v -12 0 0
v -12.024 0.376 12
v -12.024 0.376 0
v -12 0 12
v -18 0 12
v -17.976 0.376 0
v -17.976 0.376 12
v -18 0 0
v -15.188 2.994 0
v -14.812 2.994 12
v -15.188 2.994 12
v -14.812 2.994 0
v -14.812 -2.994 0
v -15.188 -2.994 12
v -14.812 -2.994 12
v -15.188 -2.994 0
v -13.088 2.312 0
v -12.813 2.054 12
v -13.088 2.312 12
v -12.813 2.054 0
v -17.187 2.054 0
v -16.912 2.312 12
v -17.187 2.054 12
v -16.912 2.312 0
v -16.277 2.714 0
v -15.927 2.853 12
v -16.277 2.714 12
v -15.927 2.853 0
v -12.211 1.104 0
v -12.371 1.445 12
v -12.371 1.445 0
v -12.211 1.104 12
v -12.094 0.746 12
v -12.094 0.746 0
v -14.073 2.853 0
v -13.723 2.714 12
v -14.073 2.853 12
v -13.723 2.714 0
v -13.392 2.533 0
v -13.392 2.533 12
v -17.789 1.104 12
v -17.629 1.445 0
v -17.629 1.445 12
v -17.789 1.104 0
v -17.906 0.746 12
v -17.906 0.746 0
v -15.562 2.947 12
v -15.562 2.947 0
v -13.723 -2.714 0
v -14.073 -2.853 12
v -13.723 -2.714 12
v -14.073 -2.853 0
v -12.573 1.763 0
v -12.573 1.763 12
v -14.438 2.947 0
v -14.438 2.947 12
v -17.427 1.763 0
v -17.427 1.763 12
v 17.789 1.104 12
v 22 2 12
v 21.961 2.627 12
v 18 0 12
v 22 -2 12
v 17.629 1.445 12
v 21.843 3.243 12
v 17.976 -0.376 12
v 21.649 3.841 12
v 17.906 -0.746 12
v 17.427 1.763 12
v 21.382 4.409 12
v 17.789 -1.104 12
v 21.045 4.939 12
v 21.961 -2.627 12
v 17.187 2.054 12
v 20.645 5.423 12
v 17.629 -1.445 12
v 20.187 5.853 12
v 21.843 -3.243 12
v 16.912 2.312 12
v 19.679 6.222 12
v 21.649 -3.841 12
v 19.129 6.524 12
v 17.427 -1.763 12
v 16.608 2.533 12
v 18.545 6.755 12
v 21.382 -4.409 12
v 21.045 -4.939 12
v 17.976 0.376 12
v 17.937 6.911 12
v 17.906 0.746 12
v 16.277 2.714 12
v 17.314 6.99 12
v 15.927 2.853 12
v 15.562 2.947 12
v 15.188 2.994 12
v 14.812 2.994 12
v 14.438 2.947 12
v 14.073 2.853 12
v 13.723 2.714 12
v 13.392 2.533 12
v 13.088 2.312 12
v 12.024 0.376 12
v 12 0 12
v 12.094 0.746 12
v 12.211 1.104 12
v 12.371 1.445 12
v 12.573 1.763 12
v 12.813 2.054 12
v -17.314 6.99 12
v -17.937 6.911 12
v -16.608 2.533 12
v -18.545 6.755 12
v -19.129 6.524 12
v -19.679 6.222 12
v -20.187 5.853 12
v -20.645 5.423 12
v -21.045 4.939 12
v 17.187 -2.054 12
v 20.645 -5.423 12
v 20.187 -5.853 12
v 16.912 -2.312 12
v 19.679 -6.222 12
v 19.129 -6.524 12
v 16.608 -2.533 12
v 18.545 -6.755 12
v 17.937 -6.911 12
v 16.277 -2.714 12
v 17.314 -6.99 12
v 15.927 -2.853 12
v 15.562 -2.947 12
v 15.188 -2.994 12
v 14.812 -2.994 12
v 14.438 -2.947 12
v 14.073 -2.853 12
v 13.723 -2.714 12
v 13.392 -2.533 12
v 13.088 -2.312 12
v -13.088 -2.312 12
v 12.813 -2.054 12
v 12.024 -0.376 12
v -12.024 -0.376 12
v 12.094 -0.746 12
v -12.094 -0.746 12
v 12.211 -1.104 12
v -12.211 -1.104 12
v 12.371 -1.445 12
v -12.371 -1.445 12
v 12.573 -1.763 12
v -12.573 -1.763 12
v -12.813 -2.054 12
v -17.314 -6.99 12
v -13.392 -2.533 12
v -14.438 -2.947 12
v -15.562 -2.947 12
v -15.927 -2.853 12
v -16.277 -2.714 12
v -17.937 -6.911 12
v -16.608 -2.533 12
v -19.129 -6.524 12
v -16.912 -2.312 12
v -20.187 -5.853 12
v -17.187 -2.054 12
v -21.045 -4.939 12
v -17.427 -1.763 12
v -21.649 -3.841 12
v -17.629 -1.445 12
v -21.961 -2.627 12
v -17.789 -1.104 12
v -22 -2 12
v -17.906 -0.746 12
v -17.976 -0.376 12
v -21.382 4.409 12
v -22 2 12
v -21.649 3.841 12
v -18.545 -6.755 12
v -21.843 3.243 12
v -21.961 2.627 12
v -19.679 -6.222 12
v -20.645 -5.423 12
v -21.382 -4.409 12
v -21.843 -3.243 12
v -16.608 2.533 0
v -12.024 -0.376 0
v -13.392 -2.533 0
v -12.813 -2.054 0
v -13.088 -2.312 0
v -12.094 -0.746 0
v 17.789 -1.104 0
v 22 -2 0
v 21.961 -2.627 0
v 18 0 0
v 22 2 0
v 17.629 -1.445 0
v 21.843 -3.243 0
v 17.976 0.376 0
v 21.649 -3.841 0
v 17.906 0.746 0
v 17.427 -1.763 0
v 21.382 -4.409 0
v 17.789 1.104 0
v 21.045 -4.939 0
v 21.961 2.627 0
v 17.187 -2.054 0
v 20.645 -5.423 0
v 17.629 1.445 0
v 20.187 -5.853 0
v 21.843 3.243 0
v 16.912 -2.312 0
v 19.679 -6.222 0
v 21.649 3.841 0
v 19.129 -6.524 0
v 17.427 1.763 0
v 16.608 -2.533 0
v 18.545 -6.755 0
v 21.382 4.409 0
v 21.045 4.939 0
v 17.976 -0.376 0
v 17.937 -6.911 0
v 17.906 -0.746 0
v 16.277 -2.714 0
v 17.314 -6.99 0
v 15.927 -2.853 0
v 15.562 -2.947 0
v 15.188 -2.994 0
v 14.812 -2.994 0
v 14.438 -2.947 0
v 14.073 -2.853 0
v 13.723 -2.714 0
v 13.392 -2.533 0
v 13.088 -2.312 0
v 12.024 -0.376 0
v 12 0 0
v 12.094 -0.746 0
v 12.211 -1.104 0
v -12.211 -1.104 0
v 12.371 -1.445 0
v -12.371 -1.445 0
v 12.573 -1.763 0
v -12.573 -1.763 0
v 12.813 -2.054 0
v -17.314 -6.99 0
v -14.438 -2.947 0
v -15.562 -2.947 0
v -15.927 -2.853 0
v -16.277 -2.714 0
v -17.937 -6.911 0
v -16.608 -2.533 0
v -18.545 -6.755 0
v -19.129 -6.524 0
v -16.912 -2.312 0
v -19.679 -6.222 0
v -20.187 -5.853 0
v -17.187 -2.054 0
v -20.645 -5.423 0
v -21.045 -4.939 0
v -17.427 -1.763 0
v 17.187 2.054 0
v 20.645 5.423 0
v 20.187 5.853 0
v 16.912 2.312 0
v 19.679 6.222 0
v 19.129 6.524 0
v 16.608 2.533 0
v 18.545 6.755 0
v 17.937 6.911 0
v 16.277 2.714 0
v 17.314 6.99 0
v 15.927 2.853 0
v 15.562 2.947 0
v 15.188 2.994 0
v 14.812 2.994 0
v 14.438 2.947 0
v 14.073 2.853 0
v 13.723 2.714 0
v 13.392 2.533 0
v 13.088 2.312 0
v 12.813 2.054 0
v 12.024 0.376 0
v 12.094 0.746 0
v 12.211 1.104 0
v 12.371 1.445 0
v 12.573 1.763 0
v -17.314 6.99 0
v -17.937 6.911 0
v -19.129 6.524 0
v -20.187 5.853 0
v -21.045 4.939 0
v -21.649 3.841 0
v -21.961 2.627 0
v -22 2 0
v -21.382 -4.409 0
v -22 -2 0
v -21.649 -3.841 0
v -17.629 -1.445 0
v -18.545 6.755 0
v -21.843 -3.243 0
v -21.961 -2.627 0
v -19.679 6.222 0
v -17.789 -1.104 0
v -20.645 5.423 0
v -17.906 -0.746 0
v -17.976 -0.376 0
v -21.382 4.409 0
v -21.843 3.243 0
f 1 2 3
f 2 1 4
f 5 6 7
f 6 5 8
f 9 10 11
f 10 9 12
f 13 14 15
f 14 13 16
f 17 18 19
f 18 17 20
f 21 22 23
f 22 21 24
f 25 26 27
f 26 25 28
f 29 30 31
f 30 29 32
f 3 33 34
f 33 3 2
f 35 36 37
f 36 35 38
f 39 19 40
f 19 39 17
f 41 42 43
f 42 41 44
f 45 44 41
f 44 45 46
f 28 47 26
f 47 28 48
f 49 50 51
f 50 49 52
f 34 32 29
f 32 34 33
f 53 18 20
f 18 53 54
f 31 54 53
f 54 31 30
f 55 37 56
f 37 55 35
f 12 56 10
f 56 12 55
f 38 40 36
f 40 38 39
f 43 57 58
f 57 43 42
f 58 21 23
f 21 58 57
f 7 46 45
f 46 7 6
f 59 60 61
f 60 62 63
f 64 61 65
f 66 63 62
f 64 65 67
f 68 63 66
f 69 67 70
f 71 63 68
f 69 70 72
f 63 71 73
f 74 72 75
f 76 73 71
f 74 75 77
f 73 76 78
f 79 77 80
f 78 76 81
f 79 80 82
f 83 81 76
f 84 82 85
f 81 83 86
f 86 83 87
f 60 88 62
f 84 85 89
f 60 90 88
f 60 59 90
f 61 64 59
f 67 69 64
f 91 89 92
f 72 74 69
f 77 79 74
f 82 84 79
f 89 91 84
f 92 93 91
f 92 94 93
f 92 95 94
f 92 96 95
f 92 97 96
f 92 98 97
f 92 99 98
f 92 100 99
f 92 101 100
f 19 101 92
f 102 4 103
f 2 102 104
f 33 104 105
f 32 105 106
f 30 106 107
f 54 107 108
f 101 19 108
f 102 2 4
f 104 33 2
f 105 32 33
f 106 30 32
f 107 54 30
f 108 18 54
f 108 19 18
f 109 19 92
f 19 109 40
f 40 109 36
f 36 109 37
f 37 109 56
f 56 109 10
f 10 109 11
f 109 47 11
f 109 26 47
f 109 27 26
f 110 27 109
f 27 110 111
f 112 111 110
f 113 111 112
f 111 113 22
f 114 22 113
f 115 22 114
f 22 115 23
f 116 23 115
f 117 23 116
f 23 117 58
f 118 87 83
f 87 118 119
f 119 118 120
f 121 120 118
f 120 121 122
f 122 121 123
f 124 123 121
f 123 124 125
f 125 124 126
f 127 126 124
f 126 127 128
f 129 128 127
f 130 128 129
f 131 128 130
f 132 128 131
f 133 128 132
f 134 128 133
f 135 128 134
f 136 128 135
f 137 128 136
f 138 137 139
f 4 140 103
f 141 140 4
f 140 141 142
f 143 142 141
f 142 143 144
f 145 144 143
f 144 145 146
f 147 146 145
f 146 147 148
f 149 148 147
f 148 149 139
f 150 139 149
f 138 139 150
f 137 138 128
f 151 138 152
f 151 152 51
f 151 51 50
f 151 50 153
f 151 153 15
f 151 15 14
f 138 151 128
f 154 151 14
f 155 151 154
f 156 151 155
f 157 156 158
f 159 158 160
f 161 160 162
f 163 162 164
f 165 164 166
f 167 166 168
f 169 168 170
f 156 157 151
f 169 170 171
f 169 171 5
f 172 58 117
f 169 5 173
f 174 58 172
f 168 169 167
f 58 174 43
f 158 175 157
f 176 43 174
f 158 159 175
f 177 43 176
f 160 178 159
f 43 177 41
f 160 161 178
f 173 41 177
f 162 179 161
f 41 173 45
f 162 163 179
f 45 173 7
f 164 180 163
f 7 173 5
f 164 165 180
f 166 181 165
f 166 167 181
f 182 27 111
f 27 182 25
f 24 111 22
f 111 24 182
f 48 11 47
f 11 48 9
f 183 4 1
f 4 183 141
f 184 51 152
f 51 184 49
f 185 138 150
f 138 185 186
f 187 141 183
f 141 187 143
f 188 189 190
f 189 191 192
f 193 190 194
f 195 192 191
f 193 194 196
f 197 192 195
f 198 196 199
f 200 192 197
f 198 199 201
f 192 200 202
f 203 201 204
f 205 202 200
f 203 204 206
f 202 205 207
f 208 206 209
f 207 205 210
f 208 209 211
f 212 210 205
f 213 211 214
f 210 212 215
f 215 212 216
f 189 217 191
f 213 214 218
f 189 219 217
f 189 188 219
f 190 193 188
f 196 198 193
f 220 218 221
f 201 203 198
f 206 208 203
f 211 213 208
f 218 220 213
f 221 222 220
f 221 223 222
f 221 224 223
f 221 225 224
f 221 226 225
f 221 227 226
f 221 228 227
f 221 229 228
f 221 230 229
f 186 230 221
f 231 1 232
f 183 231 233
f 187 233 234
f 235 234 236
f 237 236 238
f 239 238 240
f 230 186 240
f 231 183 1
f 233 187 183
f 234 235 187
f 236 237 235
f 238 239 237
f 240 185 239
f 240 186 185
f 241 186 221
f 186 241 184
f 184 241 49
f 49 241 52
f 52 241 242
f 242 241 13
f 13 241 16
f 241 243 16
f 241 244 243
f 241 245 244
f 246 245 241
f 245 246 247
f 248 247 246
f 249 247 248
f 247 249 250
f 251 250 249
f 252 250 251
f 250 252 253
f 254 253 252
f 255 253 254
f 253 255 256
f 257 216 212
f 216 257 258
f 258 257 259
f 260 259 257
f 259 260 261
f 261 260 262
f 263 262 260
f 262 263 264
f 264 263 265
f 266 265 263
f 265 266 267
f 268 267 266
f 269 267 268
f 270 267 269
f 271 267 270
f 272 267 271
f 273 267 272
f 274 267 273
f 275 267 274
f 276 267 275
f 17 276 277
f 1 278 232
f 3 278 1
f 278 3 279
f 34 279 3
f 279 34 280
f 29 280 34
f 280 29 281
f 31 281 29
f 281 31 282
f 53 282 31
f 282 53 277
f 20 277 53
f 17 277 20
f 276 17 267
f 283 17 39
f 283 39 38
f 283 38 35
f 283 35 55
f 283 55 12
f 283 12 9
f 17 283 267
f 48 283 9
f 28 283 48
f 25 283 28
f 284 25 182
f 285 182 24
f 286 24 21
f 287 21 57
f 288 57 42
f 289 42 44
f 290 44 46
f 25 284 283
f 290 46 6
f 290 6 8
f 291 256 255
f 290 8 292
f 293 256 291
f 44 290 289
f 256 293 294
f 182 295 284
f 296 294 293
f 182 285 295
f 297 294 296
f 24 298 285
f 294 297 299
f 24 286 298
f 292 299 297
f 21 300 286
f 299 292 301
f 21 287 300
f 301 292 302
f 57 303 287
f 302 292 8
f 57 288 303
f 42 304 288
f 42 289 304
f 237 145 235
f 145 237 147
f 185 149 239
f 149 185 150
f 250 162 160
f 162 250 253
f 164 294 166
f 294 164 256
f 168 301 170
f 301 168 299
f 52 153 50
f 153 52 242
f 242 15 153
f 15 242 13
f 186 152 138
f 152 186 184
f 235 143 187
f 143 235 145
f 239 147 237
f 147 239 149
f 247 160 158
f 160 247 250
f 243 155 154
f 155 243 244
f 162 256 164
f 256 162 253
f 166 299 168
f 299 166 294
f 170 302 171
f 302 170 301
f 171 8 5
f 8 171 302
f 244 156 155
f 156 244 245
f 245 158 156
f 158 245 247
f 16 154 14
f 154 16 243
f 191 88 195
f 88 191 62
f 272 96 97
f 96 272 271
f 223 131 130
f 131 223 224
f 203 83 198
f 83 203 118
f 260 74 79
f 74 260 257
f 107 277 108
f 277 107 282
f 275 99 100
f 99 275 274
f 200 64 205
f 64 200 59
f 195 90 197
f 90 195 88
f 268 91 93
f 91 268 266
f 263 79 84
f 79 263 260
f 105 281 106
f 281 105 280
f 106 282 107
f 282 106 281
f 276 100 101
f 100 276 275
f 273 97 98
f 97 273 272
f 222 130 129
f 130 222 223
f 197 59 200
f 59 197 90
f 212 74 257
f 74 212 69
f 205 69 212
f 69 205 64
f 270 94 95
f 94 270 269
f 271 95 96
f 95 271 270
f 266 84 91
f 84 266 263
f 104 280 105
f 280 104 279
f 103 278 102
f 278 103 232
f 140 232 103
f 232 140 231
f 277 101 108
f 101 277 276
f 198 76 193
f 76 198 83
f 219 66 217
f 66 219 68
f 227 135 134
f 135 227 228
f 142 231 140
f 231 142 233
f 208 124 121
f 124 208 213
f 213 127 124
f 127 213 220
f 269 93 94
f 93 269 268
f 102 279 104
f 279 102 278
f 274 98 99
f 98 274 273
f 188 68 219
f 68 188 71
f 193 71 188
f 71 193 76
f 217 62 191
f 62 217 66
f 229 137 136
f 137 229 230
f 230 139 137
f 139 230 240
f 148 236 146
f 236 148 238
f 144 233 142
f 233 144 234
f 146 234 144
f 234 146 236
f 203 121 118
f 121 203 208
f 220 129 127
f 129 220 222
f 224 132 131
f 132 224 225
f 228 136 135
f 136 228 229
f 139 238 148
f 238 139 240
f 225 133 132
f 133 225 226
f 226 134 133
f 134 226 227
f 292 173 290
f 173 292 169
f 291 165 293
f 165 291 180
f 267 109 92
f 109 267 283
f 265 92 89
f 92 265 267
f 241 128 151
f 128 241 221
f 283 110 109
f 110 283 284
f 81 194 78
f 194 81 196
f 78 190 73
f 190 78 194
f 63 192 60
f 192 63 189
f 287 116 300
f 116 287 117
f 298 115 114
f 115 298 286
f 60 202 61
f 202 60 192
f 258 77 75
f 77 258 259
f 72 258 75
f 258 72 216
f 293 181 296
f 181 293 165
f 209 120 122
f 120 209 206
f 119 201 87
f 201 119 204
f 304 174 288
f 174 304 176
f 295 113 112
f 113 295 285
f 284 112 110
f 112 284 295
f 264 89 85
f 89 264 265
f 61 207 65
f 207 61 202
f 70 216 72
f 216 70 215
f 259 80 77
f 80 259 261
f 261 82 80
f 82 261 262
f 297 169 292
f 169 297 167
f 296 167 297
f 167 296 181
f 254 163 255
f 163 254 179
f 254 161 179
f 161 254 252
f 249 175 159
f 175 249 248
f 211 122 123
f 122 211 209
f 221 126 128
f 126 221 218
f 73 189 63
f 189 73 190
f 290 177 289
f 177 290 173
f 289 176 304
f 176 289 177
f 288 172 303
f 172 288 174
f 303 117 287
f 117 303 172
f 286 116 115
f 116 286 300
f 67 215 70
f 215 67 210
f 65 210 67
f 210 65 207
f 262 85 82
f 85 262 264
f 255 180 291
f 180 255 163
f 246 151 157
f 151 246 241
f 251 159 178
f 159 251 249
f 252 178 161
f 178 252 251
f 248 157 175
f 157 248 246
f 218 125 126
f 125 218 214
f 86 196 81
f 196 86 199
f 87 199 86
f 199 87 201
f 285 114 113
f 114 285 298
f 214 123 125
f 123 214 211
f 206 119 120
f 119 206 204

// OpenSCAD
$fn = 50;


difference() {
	union() {
		hull() {
			translate(v = [-17.0000000000, 2.0000000000, 0]) {
				cylinder(h = 12, r = 5);
			}
			translate(v = [17.0000000000, 2.0000000000, 0]) {
				cylinder(h = 12, r = 5);
			}
			translate(v = [-17.0000000000, -2.0000000000, 0]) {
				cylinder(h = 12, r = 5);
			}
			translate(v = [17.0000000000, -2.0000000000, 0]) {
				cylinder(h = 12, r = 5);
			}
		}
	}
	union() {
		translate(v = [-15.0000000000, 0.0000000000, -100.0000000000]) {
			cylinder(h = 200, r = 3.0000000000);
		}
		translate(v = [-15.0000000000, 0.0000000000, -100.0000000000]) {
			cylinder(h = 200, r = 3.0000000000);
		}
		translate(v = [15.0000000000, 0.0000000000, -100.0000000000]) {
			cylinder(h = 200, r = 3.0000000000);
		}
		translate(v = [15.0000000000, 0.0000000000, -100.0000000000]) {
			cylinder(h = 200, r = 3.0000000000);
		}
	}
}
